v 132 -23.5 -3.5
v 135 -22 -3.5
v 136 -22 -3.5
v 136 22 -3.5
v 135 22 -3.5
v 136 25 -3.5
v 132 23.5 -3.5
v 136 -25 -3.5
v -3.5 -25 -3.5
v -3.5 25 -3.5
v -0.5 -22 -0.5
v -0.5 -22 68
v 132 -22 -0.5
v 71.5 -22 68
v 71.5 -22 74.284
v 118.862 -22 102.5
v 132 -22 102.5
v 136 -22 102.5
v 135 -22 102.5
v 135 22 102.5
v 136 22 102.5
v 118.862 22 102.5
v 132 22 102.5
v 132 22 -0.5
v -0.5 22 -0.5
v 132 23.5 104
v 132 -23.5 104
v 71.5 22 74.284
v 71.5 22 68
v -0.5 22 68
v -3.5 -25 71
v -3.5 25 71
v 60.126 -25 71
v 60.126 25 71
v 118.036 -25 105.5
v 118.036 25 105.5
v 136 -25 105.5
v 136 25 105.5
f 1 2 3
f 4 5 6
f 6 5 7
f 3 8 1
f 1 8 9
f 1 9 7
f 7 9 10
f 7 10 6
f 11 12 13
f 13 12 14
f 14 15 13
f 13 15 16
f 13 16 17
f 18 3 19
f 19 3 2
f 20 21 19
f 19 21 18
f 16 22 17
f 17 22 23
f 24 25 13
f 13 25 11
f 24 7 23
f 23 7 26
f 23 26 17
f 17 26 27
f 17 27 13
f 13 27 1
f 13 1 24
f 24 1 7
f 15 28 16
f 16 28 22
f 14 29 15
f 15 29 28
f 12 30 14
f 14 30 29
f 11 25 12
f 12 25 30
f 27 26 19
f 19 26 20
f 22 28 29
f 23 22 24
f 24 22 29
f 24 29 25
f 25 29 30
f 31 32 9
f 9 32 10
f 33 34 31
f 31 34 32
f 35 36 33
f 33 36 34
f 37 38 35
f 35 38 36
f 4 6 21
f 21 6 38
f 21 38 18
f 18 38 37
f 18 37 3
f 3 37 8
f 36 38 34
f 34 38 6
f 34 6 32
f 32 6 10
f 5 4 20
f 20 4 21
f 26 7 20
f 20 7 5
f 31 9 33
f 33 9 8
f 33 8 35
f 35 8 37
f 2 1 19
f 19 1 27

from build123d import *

# Parameters (mm, degrees)
BOSS_EXTRUDE1_DEPTH = 25
BOSS_EXTRUDE2_DEPTH = 3
SKETCH5_W           = 3
SKETCH5_H           = 22
CUT_EXTRUDE1_DEPTH  = 1.5
SKETCH6_W           = 3
SKETCH6_H           = 107.5
CUT_EXTRUDE2_DEPTH  = 1.5
BOSS_EXTRUDE4_DEPTH = 23.5
BOSS_EXTRUDE5_DEPTH = 109


with BuildPart() as part:
    # PCB → Boss-Extrude1 (new body)
    with BuildSketch(Plane(origin=(0, 0, 0), x_dir=(1, 0, 0), z_dir=(0, 1, 0))):
        Polygon((118.862351474, -102.5), (71.5, -74.284131037), (71.5, -68), (-0.5, -68), (-0.5, 0.5), (132, 0.5), (132, 3.5), (-3.5, 3.5), (-3.5, -71), (60.125746031, -71), (68.5, -75.988917258), (118.036460317, -105.5), (135, -105.5), (136, -105.5), (136, -102.5), (132, -102.5), align=None)
    boss_extrude1 = extrude(amount=BOSS_EXTRUDE1_DEPTH)

    # Sketch4 → Boss-Extrude2 (add)
    with BuildSketch(Plane(origin=(0, 25, 0), x_dir=(1, 0, 0), z_dir=(0, 1, 0))):
        Polygon((118.862351474, -102.5), (136, -102.5), (136, 3.5), (132, 3.5), (132, 0.5), (-0.5, 0.5), (-0.5, -68), (71.5, -68), (71.5, -74.284131037), align=None)
    boss_extrude2 = extrude(amount=-BOSS_EXTRUDE2_DEPTH)

    # Sketch5 → Cut-Extrude1 (cut)
    with BuildSketch(Plane(origin=(0, 0, 102.5), x_dir=(-1, 0, 0), z_dir=(0, 0, -1))):
        with Locations((-133.5, 11)):
            Rectangle(SKETCH5_W, SKETCH5_H)
    cut_extrude1 = extrude(amount=-CUT_EXTRUDE1_DEPTH, mode=Mode.SUBTRACT)

    # Sketch6 → Cut-Extrude2 (cut)
    with BuildSketch(Plane.XZ.offset(-22)):
        with Locations((133.5, 50.25)):
            Rectangle(SKETCH6_W, SKETCH6_H)
    cut_extrude2 = extrude(amount=-CUT_EXTRUDE2_DEPTH, mode=Mode.SUBTRACT)

    # Sketch7 → Boss-Extrude4 (add)
    with BuildSketch(Plane.XZ.offset(-23.5)):
        Polygon((135, 102.5), (132, 104), (135, 104), align=None)
    boss_extrude4 = extrude(amount=BOSS_EXTRUDE4_DEPTH)

    # Sketch8 → Boss-Extrude5 (add)
    with BuildSketch(Plane.XY.offset(105.5)):
        Polygon((135, 22), (132, 23.5), (135, 23.5), align=None)
    boss_extrude5 = extrude(amount=-BOSS_EXTRUDE5_DEPTH)

    # Mirror2: Boss-Extrude1, Boss-Extrude2, Cut-Extrude1, Cut-Extrude2, Boss-Extrude4, Boss-Extrude5 across plane
    add(boss_extrude1.mirror(Plane.ZX))
    add(boss_extrude2.mirror(Plane.ZX))
    add(cut_extrude1.mirror(Plane.ZX), mode=Mode.SUBTRACT)
    add(cut_extrude2.mirror(Plane.ZX), mode=Mode.SUBTRACT)
    add(boss_extrude4.mirror(Plane.ZX))
    add(boss_extrude5.mirror(Plane.ZX))


solid = part.part
